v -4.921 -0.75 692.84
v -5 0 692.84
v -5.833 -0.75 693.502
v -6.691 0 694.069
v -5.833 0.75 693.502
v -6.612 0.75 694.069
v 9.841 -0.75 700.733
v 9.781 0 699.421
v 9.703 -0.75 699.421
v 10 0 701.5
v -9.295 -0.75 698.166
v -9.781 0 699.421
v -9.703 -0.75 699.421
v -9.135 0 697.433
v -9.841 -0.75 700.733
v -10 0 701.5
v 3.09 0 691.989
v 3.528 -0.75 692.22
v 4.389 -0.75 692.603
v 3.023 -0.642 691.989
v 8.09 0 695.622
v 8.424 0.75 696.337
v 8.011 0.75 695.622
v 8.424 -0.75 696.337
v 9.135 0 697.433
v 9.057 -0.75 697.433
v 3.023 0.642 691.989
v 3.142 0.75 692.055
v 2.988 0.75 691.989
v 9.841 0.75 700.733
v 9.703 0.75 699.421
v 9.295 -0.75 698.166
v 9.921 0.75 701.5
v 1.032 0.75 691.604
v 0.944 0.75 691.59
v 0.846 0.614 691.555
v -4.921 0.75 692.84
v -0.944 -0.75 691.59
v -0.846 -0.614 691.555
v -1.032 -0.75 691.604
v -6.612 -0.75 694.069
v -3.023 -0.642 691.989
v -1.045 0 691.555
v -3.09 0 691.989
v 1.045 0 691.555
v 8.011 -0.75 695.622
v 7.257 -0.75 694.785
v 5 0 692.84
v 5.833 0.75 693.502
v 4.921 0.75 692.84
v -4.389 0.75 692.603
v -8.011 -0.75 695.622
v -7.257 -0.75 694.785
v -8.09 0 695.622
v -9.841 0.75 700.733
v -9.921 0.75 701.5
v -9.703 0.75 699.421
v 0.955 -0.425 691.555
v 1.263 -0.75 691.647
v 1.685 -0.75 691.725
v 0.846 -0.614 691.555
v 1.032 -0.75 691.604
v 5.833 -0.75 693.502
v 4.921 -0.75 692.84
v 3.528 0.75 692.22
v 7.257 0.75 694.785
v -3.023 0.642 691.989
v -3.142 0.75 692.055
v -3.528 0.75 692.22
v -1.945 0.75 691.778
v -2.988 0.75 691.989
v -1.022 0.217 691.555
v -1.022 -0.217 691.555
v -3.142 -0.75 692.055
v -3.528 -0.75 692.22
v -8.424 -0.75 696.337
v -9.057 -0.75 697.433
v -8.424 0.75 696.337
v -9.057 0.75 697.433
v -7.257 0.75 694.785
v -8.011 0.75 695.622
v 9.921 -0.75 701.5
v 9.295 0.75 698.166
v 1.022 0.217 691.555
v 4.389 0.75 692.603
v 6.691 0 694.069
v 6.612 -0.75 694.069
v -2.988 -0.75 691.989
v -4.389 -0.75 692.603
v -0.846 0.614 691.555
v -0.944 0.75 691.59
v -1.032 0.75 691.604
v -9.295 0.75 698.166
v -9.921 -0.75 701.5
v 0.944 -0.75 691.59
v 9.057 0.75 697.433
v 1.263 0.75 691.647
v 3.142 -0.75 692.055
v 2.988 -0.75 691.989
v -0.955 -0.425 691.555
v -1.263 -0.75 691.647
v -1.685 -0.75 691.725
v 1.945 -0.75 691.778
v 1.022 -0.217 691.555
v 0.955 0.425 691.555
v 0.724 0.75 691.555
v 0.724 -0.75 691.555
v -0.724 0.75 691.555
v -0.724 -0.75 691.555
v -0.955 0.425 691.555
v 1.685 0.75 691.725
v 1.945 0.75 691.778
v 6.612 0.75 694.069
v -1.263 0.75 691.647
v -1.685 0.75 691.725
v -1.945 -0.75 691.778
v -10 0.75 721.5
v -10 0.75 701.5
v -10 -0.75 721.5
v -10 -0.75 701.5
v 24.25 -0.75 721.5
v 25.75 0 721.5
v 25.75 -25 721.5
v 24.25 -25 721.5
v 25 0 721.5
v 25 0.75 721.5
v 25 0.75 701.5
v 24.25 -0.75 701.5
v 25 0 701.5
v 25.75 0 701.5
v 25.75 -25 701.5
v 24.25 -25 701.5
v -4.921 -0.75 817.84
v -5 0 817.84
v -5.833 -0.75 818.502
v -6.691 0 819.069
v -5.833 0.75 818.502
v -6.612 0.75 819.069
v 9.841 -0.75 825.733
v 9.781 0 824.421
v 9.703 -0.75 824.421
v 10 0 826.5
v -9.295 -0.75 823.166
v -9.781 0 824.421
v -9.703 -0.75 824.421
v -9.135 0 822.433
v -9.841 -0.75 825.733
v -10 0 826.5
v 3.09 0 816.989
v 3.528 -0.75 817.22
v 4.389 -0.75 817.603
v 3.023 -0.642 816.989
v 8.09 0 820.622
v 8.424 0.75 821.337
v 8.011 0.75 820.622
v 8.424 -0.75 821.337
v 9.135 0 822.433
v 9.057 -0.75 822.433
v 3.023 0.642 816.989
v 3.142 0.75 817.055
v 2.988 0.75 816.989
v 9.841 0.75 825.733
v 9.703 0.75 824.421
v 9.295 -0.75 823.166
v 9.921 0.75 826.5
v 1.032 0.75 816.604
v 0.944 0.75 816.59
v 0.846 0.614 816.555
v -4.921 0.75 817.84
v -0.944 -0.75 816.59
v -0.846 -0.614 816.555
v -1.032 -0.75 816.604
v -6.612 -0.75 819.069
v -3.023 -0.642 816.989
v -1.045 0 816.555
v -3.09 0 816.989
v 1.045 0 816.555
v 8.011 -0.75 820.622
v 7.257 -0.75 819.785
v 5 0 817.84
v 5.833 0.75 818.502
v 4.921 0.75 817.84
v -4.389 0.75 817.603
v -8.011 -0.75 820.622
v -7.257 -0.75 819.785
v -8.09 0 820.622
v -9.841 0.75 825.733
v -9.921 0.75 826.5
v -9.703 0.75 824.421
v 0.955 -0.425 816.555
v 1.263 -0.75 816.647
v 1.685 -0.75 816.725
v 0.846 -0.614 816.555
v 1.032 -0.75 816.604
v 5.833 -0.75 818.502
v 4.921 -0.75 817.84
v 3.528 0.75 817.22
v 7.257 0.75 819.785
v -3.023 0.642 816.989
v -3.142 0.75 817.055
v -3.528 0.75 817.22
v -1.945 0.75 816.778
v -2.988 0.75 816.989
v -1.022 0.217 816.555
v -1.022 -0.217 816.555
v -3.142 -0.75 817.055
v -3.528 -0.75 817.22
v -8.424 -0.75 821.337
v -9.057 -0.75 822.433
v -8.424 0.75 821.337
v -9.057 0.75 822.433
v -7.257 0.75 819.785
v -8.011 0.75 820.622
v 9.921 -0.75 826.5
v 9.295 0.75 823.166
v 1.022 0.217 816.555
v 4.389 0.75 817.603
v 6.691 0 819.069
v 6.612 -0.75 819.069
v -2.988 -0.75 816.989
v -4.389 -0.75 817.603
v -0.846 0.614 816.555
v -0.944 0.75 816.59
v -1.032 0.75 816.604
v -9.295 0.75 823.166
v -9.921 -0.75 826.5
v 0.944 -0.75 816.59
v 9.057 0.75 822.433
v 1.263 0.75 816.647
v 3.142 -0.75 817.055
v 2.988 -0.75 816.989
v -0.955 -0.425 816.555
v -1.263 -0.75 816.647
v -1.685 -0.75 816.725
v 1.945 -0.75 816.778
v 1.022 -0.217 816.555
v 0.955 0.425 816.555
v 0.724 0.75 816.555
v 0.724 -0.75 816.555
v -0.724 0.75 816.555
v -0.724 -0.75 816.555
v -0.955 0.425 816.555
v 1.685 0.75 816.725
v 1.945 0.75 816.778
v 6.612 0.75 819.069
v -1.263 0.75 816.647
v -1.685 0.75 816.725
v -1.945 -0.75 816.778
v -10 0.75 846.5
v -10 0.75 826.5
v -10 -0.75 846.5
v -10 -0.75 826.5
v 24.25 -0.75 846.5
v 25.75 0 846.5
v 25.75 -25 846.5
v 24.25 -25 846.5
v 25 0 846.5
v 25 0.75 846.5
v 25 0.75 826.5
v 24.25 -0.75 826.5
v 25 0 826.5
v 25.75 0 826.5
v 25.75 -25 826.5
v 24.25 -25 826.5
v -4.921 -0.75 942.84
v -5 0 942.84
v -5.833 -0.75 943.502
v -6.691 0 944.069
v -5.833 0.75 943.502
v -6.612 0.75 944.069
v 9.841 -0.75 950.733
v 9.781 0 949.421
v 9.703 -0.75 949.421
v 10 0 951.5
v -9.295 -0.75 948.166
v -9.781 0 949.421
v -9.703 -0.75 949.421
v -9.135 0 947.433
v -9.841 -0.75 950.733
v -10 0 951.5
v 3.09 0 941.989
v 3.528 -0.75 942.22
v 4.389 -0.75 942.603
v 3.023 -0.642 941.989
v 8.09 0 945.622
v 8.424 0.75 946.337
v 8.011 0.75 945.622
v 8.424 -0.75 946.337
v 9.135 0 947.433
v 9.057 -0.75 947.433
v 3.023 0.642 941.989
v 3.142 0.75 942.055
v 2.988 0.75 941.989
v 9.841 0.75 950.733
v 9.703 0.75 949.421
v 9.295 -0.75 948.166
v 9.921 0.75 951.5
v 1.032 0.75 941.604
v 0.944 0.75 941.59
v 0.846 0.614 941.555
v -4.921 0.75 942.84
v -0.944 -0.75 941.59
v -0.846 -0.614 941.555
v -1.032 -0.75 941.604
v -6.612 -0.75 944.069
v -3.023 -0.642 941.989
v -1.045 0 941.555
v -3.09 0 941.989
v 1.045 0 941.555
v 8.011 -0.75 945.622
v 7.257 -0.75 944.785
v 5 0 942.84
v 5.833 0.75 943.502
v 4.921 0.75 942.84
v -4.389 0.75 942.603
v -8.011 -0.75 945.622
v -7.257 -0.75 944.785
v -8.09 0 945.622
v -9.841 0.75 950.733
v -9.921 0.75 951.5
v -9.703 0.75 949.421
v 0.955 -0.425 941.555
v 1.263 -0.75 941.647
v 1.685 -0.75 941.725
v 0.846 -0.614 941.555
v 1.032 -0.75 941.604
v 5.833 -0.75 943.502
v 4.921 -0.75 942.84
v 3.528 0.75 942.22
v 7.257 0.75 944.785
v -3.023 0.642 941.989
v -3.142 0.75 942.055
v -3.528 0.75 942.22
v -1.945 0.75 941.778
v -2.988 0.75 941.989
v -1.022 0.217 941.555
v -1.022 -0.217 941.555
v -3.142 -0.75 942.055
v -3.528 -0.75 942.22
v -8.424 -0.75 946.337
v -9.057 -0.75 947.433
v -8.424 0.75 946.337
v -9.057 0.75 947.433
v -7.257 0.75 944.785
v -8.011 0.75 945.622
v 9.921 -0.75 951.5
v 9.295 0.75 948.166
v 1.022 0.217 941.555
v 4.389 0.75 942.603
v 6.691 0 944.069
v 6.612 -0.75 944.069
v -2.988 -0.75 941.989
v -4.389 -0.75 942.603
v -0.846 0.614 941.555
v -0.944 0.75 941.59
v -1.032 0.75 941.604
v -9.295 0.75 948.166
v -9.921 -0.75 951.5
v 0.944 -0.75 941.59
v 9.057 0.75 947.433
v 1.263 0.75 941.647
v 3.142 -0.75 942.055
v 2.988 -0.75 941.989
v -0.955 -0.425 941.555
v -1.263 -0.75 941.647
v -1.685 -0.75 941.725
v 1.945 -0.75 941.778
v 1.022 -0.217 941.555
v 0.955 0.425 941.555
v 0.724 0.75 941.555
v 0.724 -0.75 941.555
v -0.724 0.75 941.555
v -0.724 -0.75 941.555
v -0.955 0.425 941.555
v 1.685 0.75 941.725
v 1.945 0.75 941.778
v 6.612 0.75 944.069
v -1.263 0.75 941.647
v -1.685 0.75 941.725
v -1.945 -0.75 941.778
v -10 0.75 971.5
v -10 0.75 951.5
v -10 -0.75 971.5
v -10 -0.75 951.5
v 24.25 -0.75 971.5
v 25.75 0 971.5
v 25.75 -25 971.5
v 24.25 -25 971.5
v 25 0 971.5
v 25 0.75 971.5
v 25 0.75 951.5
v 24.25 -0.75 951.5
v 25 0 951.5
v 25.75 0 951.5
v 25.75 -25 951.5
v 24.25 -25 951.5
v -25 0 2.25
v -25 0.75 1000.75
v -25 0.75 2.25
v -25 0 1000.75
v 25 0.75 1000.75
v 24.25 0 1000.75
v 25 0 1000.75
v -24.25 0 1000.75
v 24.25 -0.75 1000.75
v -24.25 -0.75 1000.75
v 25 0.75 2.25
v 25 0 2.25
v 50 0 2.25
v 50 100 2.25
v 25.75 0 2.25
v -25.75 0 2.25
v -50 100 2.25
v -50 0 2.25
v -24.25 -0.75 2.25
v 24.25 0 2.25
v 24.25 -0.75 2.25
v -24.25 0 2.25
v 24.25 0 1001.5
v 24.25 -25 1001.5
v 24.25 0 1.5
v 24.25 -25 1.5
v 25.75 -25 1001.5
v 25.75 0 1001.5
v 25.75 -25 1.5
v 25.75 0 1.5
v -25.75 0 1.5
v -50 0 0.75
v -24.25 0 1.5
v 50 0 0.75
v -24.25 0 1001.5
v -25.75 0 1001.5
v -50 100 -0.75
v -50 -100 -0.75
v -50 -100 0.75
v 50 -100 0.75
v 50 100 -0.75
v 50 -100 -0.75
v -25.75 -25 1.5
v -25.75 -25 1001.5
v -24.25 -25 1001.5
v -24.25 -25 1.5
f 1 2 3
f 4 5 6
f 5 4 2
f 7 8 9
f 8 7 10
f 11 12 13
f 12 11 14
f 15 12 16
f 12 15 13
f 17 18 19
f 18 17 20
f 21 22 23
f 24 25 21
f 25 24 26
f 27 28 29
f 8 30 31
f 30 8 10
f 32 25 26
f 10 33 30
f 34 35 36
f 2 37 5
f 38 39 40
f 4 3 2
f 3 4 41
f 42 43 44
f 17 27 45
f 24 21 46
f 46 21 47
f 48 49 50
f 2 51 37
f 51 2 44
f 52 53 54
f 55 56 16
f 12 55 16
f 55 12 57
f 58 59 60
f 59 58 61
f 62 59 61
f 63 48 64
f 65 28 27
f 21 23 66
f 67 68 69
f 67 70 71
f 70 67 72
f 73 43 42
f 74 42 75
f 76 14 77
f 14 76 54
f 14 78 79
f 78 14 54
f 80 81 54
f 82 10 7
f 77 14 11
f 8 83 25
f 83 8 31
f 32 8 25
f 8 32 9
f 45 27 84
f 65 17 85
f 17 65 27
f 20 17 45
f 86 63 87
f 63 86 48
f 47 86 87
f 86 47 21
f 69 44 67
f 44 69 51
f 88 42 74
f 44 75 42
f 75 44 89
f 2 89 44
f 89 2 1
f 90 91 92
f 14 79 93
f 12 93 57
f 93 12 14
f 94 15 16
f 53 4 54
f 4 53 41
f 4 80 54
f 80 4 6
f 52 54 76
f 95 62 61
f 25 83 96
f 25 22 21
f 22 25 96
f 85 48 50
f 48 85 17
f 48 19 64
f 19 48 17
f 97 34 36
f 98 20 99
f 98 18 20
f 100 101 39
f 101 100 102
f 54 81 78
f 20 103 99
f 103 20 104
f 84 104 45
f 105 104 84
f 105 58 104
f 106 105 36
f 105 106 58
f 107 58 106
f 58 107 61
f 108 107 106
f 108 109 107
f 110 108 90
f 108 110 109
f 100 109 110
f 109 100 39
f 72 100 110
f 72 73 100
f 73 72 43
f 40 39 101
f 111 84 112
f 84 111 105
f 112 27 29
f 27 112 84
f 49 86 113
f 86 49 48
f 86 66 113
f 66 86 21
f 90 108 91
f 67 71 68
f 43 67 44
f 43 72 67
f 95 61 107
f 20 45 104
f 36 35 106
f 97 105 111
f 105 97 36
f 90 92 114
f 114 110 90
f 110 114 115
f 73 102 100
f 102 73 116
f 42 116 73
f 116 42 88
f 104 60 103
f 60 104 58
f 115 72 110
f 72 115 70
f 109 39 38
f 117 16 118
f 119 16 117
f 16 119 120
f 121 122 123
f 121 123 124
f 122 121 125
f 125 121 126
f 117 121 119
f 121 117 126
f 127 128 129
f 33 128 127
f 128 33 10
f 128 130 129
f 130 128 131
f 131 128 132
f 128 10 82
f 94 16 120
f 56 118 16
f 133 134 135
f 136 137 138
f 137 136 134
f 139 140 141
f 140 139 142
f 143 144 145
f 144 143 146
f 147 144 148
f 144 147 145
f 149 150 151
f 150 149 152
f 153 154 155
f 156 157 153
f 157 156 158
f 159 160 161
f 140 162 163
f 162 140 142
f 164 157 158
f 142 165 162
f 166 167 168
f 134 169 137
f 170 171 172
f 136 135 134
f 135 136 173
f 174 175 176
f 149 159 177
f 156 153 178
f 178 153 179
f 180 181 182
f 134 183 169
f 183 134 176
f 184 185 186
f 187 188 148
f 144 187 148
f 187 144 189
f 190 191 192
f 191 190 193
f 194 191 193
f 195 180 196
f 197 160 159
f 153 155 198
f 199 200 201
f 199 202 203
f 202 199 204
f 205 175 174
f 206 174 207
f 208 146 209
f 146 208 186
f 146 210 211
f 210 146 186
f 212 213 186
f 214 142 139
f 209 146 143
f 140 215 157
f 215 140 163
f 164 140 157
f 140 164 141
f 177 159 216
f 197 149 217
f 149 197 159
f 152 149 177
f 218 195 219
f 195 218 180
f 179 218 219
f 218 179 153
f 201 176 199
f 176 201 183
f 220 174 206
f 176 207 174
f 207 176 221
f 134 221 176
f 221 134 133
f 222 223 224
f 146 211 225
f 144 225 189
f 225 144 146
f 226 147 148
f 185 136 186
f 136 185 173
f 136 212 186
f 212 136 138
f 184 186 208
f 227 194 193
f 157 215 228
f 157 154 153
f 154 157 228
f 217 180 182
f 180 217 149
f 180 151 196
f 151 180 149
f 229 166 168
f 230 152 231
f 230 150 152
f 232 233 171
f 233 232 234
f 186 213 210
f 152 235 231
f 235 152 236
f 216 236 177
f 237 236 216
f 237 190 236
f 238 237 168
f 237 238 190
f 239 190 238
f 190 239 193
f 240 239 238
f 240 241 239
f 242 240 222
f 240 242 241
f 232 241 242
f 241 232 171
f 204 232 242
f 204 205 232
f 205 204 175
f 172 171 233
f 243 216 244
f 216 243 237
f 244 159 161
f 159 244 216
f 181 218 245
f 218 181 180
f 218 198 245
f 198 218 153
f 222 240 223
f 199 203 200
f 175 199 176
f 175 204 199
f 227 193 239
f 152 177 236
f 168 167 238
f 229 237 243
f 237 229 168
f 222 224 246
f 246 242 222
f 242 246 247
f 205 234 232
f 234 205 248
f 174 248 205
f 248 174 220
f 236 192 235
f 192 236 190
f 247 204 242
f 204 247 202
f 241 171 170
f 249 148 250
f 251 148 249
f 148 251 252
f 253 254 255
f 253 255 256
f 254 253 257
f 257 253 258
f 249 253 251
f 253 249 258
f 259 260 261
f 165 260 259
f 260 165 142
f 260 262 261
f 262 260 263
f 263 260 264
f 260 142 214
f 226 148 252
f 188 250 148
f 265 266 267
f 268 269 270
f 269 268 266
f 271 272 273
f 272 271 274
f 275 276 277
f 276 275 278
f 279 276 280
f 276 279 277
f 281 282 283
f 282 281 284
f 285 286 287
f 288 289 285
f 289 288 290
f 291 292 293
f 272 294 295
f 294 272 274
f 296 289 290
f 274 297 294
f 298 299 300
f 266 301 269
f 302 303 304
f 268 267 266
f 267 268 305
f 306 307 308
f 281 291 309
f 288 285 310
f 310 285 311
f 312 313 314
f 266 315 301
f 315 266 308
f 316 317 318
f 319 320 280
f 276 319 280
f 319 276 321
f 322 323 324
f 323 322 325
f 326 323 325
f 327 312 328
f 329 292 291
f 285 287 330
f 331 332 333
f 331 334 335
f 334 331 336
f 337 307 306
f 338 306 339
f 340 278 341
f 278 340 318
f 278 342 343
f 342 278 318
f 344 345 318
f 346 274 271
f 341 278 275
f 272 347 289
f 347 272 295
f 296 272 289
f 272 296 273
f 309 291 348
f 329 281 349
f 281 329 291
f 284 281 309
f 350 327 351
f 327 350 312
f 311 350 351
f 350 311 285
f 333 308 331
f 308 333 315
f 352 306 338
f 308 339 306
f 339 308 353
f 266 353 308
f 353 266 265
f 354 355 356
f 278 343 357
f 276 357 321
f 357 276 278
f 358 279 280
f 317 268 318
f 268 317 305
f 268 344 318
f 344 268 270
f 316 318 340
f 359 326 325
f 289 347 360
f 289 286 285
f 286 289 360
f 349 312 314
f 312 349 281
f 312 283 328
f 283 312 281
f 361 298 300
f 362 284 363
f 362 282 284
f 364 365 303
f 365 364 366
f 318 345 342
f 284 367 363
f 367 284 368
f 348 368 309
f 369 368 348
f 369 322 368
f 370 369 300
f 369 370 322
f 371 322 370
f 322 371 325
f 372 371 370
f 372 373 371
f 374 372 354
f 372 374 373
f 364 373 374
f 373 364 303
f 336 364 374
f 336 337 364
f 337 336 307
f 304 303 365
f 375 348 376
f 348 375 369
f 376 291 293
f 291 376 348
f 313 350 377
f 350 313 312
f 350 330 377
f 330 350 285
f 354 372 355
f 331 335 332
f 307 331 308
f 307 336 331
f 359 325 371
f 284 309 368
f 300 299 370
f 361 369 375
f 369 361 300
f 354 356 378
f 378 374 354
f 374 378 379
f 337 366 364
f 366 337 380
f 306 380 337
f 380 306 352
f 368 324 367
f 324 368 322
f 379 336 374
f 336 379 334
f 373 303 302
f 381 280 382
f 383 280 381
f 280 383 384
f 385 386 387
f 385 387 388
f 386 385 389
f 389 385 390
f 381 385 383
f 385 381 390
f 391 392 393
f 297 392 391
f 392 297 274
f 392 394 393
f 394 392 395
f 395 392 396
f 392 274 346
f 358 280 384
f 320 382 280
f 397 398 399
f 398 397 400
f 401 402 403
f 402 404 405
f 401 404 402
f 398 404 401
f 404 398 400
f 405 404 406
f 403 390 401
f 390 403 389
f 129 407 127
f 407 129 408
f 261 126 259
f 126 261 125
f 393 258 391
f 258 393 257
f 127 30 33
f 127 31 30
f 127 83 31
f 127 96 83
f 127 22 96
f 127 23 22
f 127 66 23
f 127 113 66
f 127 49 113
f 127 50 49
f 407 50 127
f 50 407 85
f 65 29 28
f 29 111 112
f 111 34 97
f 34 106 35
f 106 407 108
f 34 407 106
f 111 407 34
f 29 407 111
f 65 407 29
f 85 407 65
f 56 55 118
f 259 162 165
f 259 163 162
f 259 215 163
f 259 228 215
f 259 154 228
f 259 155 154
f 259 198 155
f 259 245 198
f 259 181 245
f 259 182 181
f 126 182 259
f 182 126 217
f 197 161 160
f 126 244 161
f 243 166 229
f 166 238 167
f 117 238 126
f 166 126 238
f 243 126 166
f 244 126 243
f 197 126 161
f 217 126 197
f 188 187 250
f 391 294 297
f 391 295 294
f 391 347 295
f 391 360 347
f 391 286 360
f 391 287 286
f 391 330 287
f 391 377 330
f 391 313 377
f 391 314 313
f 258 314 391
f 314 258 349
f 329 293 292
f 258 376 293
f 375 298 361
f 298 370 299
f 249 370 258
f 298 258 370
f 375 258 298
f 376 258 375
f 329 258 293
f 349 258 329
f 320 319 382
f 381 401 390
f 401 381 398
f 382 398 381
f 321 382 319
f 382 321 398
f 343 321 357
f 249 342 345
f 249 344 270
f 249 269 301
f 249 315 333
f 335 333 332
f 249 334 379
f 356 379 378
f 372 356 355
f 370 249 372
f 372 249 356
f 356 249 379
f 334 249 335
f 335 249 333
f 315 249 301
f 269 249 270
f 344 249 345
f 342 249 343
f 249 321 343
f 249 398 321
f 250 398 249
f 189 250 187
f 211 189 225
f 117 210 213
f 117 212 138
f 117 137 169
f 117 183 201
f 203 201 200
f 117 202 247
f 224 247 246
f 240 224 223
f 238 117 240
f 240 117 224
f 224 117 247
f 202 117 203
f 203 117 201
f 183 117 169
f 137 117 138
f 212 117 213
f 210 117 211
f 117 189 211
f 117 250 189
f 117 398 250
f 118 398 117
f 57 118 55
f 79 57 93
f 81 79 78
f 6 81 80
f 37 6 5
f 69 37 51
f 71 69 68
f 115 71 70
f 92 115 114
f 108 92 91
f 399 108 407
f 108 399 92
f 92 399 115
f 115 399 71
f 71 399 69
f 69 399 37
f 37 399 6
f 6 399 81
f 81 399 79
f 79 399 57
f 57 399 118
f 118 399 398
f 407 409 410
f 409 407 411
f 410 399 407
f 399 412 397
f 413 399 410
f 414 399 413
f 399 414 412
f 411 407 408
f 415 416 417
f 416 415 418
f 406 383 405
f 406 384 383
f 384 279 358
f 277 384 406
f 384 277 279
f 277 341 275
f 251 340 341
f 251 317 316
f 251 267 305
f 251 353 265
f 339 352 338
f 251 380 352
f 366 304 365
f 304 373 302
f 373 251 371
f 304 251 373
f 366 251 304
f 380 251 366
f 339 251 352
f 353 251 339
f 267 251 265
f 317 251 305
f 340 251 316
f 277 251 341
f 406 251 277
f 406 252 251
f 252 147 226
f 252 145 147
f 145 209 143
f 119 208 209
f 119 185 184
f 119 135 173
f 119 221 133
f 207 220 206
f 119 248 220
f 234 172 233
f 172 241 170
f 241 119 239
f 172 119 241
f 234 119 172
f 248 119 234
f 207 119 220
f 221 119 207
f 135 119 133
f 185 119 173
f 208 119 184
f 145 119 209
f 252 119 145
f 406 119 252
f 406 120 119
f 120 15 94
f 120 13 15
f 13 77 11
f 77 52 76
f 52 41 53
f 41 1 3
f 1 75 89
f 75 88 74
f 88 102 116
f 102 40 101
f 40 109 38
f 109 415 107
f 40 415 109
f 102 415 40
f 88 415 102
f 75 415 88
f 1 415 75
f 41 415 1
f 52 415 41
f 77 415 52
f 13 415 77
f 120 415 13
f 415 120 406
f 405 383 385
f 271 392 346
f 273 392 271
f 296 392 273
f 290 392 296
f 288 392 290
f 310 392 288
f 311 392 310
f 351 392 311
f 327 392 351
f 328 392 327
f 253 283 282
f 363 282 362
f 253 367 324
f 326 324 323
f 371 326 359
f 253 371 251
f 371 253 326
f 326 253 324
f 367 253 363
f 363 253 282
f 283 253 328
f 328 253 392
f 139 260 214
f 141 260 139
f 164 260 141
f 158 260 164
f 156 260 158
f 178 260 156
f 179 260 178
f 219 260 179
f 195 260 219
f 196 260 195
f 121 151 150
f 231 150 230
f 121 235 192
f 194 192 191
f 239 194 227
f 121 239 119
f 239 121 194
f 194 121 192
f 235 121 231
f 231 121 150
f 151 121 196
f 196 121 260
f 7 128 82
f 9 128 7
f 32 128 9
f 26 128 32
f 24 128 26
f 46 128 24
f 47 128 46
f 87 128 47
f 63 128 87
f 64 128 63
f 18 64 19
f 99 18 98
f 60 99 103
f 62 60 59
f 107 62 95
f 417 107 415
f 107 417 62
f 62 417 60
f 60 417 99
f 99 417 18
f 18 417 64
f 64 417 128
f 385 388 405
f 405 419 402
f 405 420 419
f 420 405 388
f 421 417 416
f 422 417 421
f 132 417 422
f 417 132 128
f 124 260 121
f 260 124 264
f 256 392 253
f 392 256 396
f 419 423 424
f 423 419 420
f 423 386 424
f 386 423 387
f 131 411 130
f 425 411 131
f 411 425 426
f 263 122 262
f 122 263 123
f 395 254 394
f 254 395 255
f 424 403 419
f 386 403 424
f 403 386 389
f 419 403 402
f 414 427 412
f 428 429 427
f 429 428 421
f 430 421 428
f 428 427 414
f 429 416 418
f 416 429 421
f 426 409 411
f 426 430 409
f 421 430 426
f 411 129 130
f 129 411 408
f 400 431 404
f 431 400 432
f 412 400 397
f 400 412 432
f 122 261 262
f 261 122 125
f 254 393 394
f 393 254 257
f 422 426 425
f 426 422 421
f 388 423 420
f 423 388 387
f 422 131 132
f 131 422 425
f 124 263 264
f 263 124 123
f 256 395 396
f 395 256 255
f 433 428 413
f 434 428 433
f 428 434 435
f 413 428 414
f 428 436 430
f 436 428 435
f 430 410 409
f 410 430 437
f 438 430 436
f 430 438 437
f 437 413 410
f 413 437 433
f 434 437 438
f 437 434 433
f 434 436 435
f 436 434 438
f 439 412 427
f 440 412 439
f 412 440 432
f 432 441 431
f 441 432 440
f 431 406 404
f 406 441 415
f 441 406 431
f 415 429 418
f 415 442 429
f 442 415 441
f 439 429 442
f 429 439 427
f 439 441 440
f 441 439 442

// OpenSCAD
union()
{
    cube([100,200,1.5], true);
    translate( [0,50,1.5] ) cube([100,100,1.5], true);
    translate( [0,0,501.5] )
        difference()
        {   
            cube([50,1.5,998.5],true);
            translate( [0,0,200] ) 
                union() 
                {
                    sphere(10);
                    translate([25,0,10]) cube([70,50,20],true);
                };
            translate( [0,0,325] ) 
                union() 
                {
                    sphere(10);
                    translate([25,0,10]) cube([70,50,20],true);
                };
            
            translate( [0,0,450] ) 
                union() 
                {
                    sphere(10);
                    translate([25,0,10]) cube([70,50,20],true);
                };
            
        }
        
    translate( [-25,-12.50,501.50] ) 
                cube([1.5,25,1000],true);
    
    translate( [25,-12.5, 501.5] ) 
        difference()
        {
                cube([1.5,25,1000],true);
                translate( [0,0,210] ) cube([30,30,20],true);
                translate( [0,0,335] ) cube([30,30,20],true);
                translate( [0,0,460] ) cube([30,30,20],true);
            
        };
    
}
